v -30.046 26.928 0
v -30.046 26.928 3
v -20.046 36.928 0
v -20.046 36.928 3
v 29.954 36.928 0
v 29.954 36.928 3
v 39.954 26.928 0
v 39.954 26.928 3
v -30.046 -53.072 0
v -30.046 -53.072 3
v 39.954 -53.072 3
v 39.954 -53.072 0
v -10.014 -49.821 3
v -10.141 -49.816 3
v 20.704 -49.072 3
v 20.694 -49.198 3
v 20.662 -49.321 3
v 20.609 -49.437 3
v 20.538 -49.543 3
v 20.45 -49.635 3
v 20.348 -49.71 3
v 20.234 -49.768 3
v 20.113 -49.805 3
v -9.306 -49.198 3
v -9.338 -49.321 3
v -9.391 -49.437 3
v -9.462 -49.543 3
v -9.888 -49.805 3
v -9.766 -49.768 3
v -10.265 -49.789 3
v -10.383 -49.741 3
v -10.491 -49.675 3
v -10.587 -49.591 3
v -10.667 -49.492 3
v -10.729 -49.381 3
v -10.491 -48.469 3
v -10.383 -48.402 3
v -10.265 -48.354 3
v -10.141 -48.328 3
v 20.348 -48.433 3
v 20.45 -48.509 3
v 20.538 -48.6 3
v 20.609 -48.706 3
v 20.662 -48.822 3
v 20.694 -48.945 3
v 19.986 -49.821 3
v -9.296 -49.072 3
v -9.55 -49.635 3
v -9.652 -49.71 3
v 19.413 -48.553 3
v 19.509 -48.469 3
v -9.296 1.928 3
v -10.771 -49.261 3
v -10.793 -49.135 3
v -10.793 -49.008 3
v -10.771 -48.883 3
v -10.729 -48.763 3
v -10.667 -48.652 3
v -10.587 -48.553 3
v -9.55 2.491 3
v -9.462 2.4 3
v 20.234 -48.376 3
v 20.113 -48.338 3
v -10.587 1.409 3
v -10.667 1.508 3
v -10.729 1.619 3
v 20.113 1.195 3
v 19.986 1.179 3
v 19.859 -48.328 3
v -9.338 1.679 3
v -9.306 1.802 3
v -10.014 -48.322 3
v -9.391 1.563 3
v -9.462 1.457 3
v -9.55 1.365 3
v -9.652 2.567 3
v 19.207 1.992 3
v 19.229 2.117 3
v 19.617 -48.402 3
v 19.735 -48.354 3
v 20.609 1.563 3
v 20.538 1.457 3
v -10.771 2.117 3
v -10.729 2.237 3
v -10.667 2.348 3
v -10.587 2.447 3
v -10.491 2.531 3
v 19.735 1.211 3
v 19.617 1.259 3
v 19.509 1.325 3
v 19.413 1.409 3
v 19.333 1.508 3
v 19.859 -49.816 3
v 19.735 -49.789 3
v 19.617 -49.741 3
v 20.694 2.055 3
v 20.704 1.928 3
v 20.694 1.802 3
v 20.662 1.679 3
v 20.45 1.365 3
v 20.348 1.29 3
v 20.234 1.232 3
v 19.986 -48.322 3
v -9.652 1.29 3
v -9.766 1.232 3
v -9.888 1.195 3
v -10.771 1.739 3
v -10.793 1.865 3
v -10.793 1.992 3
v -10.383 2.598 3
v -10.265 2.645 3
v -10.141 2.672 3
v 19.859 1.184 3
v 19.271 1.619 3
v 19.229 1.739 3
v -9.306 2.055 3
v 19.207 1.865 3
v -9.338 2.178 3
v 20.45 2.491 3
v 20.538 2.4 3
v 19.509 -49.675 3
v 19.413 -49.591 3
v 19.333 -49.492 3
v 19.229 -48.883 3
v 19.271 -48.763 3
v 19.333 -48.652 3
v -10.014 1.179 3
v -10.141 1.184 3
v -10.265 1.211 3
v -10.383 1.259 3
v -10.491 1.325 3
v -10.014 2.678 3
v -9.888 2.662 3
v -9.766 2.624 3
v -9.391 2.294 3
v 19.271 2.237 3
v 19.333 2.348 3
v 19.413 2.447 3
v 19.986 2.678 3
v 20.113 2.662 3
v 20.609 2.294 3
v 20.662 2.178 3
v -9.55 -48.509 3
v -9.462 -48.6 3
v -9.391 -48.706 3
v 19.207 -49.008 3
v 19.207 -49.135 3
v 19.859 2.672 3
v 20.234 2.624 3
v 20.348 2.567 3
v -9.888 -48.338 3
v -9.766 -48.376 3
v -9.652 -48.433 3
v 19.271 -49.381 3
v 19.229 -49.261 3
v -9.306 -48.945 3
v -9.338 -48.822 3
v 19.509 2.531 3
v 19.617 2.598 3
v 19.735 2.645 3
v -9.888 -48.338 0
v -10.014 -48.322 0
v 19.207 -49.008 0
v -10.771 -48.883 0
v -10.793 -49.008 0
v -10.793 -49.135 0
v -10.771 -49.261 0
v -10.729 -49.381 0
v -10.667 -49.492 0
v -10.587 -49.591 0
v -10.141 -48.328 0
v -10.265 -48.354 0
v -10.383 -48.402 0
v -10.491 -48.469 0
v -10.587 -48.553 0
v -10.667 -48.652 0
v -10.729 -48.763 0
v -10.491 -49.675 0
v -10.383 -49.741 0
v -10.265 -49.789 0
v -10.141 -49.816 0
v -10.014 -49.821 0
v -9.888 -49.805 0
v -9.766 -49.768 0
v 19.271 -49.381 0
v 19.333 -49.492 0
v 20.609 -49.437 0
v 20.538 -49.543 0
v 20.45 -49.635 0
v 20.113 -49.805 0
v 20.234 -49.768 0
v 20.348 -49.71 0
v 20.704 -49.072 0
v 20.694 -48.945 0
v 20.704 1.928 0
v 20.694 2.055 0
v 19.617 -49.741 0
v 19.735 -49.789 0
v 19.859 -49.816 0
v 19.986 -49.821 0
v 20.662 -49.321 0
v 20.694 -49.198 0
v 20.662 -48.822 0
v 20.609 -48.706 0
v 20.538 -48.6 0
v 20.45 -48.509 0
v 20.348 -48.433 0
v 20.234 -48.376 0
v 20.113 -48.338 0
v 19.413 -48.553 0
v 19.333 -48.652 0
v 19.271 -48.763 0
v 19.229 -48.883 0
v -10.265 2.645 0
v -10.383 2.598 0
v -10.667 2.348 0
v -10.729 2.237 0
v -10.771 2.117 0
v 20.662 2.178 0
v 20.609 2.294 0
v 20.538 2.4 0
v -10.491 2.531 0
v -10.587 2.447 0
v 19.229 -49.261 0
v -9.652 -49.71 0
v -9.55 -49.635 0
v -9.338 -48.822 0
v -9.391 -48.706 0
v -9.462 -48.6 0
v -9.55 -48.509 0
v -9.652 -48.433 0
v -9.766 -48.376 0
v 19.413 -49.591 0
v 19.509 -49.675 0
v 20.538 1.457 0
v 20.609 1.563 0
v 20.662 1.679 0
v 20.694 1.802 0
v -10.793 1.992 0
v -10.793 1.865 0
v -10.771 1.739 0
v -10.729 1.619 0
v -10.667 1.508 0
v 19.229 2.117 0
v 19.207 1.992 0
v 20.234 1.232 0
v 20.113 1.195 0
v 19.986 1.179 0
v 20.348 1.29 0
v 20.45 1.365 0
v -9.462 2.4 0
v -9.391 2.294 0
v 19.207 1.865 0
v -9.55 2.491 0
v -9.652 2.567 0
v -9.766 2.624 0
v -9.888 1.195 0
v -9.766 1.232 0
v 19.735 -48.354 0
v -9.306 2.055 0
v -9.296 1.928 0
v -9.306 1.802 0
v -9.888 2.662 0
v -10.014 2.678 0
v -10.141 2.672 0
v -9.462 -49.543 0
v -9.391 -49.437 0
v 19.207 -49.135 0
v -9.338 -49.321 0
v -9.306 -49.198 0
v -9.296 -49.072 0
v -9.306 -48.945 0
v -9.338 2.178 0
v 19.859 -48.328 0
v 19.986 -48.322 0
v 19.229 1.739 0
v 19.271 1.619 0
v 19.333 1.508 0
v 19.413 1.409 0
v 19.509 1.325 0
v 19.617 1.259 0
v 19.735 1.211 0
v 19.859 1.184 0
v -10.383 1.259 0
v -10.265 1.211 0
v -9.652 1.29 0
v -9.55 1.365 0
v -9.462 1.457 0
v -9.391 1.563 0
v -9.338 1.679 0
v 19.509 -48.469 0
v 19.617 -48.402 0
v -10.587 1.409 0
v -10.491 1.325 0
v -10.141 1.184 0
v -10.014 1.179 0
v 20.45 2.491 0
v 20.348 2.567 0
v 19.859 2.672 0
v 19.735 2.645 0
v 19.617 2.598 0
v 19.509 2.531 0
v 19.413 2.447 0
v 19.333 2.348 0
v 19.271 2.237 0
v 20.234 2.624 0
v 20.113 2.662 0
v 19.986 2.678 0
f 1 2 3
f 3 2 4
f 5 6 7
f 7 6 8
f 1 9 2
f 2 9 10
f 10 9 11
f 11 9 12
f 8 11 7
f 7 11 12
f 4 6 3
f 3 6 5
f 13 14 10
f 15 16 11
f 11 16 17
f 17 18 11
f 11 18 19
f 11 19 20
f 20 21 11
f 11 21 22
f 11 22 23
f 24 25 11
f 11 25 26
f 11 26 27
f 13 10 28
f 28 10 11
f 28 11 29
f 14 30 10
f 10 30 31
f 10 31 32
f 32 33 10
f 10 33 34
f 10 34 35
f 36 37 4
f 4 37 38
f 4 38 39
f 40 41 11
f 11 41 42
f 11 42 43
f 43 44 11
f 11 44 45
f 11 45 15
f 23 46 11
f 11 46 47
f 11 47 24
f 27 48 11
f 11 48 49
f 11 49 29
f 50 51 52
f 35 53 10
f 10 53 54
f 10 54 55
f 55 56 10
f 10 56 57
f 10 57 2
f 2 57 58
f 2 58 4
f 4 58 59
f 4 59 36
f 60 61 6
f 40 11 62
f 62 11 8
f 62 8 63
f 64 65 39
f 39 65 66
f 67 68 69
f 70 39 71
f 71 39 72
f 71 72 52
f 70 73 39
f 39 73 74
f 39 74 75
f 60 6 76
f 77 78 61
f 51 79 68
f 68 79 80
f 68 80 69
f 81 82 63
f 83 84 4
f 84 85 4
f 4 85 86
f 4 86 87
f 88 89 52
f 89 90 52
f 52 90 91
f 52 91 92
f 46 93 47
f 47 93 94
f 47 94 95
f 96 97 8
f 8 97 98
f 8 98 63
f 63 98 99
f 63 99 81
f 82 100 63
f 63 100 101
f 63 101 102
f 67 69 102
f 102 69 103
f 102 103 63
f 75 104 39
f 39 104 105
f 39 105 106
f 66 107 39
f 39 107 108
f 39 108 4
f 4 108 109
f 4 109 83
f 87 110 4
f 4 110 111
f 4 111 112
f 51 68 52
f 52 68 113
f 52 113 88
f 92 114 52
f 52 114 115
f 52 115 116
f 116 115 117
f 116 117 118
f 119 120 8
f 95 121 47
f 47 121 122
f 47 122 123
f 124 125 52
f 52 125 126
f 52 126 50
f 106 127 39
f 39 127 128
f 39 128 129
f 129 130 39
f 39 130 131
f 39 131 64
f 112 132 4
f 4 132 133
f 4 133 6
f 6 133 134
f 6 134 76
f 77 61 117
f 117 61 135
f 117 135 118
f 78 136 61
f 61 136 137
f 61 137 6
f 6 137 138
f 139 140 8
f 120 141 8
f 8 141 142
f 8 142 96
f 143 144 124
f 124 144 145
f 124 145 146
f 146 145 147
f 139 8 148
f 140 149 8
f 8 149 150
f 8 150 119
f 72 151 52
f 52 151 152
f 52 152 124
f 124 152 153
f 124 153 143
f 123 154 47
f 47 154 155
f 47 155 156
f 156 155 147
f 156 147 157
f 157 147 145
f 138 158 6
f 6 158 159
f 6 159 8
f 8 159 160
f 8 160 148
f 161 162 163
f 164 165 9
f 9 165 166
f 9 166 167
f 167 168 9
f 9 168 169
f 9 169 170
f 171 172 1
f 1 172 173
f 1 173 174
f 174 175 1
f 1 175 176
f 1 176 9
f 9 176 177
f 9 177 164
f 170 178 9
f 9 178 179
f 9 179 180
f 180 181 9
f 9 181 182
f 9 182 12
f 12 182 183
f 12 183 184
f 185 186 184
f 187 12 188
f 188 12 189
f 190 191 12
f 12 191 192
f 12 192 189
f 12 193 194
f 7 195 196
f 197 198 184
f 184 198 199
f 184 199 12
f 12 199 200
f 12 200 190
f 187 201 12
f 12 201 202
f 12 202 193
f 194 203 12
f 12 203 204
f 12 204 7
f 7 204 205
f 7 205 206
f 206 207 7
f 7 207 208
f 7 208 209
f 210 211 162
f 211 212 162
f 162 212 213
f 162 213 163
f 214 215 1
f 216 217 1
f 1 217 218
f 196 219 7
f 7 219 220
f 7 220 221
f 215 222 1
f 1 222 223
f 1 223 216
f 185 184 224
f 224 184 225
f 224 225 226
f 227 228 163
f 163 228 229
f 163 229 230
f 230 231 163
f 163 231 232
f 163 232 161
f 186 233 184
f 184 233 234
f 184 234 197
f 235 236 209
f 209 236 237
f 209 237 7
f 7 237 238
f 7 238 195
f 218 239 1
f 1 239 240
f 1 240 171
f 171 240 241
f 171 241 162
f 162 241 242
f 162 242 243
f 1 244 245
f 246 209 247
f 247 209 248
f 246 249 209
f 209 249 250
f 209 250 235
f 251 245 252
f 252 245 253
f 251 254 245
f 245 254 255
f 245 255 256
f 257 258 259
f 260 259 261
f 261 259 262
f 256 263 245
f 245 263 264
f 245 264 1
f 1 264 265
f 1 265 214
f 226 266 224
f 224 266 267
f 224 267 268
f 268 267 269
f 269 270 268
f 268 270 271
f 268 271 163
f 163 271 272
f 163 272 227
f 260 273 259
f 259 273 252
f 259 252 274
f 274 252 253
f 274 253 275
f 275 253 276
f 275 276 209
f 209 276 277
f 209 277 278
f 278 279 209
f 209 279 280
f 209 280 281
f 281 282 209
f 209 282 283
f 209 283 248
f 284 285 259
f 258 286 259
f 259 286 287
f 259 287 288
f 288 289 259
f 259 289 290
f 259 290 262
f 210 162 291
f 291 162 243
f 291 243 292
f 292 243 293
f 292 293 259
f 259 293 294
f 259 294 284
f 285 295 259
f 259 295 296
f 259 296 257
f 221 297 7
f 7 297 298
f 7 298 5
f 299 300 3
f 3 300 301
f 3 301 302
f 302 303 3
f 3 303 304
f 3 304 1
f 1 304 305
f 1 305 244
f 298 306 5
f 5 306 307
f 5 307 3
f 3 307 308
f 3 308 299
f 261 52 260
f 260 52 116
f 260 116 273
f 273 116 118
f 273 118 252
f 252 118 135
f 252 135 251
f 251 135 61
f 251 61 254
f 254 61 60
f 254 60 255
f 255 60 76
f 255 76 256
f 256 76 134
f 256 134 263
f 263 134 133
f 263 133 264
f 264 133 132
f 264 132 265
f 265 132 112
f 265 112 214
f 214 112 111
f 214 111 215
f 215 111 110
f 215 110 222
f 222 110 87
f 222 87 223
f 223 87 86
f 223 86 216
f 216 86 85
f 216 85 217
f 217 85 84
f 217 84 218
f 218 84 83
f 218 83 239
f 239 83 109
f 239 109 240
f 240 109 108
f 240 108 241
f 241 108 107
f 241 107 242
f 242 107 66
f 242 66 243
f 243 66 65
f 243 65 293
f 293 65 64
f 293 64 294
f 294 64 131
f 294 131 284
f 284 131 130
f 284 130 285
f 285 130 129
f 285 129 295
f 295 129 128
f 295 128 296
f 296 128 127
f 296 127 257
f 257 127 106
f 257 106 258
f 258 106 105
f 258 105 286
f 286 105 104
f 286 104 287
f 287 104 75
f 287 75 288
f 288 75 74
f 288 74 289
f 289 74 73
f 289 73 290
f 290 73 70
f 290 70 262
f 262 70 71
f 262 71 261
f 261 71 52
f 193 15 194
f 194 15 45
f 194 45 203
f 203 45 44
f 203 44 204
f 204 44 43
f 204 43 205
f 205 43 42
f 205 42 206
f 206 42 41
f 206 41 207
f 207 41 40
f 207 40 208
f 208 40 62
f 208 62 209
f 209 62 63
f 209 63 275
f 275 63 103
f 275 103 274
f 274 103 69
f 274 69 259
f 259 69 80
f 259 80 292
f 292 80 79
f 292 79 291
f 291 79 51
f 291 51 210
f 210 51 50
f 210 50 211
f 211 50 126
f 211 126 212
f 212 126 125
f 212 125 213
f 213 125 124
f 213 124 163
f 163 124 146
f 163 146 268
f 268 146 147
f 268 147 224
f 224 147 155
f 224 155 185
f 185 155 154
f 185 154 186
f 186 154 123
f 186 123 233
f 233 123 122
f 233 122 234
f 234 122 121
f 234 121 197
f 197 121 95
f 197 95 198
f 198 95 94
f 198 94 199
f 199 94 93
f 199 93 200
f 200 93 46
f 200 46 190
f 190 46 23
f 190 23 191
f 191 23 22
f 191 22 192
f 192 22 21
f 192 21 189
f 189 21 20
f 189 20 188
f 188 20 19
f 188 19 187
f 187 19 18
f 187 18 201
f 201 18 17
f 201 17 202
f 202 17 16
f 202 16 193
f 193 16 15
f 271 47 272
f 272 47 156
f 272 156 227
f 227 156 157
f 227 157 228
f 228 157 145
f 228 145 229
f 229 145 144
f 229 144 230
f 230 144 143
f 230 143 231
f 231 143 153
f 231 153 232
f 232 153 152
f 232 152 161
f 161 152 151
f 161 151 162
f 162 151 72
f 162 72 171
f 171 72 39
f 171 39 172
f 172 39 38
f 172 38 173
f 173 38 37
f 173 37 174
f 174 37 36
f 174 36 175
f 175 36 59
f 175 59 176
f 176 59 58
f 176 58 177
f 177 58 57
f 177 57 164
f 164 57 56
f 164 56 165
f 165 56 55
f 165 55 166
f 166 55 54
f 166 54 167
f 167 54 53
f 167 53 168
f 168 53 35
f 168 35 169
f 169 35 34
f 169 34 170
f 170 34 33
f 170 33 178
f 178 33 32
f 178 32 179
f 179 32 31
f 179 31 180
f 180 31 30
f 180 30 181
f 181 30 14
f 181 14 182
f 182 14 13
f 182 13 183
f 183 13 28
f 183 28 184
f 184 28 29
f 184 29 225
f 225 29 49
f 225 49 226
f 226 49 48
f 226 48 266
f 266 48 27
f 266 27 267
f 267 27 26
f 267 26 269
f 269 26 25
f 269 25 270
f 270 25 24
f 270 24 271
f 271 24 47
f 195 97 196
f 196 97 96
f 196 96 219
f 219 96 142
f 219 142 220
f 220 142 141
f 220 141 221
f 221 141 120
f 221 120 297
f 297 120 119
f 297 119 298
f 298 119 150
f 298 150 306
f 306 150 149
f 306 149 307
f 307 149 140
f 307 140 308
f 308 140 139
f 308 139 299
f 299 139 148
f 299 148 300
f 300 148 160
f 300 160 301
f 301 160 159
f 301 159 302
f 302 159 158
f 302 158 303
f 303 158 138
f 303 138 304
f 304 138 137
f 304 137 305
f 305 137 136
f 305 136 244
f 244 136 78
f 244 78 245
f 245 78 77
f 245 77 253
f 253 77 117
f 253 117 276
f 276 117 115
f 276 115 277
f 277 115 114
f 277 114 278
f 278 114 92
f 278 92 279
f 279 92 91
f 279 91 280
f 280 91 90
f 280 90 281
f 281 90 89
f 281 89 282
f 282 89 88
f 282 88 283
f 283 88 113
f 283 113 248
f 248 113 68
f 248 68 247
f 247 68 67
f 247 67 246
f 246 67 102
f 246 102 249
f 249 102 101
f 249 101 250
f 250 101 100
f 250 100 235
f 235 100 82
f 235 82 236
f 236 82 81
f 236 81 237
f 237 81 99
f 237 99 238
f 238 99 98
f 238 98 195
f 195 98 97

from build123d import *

# Parameters (mm, degrees)
CROQUIS1_W              = 70
CROQUIS1_H              = 90
SALIENTE_EXTRUIR1_DEPTH = 3
CROQUIS2_R              = 1
CORTAR_EXTRUIR1_DEPTH   = 3
CHAFL_N1_SIZE           = 10
CHAFL_N2_SIZE           = 10
CROQUIS4_W              = 66.199172227
CROQUIS4_H              = 50.611167931
SALIENTE_EXTRUIR2_DEPTH = 3
CROQUIS5_R              = 0.75
CORTAR_EXTRUIR2_DEPTH   = 67.497809415


with BuildPart() as part:
    # Croquis1 → Saliente-Extruir1 (new body)
    with BuildSketch(Plane.XY):
        with Locations((4.954489614, -8.071625344)):
            Rectangle(CROQUIS1_W, CROQUIS1_H)
    extrude(amount=SALIENTE_EXTRUIR1_DEPTH)

    # Croquis2 → Cortar-Extruir1 (cut)
    with BuildSketch(Plane(origin=(0, 0, 0), x_dir=(-1, 0, 0), z_dir=(0, 0, -1))):
        with Locations((-34.954489614, -49.571625344)):
            Circle(CROQUIS2_R)
        with Locations((25.045510386, -49.571625344)):
            Circle(CROQUIS2_R)
        with Locations((-34.954489614, -6.571625344)):
            Circle(CROQUIS2_R)
        with Locations((25.045510386, -6.571625344)):
            Circle(CROQUIS2_R)
    extrude(amount=-CORTAR_EXTRUIR1_DEPTH, mode=Mode.SUBTRACT)

    # Chaflán1
    chafl_n1_edges = [part.edges().sort_by_distance(p)[0] for p in [
        (39.954489614, 36.928374656, 1.5),
    ]]
    chamfer(chafl_n1_edges, length=CHAFL_N1_SIZE)

    # Chaflán2
    chafl_n2_edges = [part.edges().sort_by_distance(p)[0] for p in [
        (-30.045510386, 36.928374656, 1.5),
    ]]
    chamfer(chafl_n2_edges, length=CHAFL_N2_SIZE)

    # Croquis4 → Saliente-Extruir2 (add)
    with BuildSketch(Plane.XY.offset(3)):
        with Locations((4.57620863, -27.766041379)):
            Rectangle(CROQUIS4_W, CROQUIS4_H)
    extrude(amount=-SALIENTE_EXTRUIR2_DEPTH)

    # Croquis5 → Cortar-Extruir2 (cut, through all)
    with BuildSketch(Plane.XY.offset(3)):
        with Locations((-10.045510386, 1.928374656)):
            Circle(CROQUIS5_R)
        with Locations((19.954489614, 1.928374656)):
            Circle(CROQUIS5_R)
        with Locations((-10.045510386, -49.071625344)):
            Circle(CROQUIS5_R)
        with Locations((19.954489614, -49.071625344)):
            Circle(CROQUIS5_R)
    extrude(amount=-CORTAR_EXTRUIR2_DEPTH, mode=Mode.SUBTRACT)


solid = part.part
